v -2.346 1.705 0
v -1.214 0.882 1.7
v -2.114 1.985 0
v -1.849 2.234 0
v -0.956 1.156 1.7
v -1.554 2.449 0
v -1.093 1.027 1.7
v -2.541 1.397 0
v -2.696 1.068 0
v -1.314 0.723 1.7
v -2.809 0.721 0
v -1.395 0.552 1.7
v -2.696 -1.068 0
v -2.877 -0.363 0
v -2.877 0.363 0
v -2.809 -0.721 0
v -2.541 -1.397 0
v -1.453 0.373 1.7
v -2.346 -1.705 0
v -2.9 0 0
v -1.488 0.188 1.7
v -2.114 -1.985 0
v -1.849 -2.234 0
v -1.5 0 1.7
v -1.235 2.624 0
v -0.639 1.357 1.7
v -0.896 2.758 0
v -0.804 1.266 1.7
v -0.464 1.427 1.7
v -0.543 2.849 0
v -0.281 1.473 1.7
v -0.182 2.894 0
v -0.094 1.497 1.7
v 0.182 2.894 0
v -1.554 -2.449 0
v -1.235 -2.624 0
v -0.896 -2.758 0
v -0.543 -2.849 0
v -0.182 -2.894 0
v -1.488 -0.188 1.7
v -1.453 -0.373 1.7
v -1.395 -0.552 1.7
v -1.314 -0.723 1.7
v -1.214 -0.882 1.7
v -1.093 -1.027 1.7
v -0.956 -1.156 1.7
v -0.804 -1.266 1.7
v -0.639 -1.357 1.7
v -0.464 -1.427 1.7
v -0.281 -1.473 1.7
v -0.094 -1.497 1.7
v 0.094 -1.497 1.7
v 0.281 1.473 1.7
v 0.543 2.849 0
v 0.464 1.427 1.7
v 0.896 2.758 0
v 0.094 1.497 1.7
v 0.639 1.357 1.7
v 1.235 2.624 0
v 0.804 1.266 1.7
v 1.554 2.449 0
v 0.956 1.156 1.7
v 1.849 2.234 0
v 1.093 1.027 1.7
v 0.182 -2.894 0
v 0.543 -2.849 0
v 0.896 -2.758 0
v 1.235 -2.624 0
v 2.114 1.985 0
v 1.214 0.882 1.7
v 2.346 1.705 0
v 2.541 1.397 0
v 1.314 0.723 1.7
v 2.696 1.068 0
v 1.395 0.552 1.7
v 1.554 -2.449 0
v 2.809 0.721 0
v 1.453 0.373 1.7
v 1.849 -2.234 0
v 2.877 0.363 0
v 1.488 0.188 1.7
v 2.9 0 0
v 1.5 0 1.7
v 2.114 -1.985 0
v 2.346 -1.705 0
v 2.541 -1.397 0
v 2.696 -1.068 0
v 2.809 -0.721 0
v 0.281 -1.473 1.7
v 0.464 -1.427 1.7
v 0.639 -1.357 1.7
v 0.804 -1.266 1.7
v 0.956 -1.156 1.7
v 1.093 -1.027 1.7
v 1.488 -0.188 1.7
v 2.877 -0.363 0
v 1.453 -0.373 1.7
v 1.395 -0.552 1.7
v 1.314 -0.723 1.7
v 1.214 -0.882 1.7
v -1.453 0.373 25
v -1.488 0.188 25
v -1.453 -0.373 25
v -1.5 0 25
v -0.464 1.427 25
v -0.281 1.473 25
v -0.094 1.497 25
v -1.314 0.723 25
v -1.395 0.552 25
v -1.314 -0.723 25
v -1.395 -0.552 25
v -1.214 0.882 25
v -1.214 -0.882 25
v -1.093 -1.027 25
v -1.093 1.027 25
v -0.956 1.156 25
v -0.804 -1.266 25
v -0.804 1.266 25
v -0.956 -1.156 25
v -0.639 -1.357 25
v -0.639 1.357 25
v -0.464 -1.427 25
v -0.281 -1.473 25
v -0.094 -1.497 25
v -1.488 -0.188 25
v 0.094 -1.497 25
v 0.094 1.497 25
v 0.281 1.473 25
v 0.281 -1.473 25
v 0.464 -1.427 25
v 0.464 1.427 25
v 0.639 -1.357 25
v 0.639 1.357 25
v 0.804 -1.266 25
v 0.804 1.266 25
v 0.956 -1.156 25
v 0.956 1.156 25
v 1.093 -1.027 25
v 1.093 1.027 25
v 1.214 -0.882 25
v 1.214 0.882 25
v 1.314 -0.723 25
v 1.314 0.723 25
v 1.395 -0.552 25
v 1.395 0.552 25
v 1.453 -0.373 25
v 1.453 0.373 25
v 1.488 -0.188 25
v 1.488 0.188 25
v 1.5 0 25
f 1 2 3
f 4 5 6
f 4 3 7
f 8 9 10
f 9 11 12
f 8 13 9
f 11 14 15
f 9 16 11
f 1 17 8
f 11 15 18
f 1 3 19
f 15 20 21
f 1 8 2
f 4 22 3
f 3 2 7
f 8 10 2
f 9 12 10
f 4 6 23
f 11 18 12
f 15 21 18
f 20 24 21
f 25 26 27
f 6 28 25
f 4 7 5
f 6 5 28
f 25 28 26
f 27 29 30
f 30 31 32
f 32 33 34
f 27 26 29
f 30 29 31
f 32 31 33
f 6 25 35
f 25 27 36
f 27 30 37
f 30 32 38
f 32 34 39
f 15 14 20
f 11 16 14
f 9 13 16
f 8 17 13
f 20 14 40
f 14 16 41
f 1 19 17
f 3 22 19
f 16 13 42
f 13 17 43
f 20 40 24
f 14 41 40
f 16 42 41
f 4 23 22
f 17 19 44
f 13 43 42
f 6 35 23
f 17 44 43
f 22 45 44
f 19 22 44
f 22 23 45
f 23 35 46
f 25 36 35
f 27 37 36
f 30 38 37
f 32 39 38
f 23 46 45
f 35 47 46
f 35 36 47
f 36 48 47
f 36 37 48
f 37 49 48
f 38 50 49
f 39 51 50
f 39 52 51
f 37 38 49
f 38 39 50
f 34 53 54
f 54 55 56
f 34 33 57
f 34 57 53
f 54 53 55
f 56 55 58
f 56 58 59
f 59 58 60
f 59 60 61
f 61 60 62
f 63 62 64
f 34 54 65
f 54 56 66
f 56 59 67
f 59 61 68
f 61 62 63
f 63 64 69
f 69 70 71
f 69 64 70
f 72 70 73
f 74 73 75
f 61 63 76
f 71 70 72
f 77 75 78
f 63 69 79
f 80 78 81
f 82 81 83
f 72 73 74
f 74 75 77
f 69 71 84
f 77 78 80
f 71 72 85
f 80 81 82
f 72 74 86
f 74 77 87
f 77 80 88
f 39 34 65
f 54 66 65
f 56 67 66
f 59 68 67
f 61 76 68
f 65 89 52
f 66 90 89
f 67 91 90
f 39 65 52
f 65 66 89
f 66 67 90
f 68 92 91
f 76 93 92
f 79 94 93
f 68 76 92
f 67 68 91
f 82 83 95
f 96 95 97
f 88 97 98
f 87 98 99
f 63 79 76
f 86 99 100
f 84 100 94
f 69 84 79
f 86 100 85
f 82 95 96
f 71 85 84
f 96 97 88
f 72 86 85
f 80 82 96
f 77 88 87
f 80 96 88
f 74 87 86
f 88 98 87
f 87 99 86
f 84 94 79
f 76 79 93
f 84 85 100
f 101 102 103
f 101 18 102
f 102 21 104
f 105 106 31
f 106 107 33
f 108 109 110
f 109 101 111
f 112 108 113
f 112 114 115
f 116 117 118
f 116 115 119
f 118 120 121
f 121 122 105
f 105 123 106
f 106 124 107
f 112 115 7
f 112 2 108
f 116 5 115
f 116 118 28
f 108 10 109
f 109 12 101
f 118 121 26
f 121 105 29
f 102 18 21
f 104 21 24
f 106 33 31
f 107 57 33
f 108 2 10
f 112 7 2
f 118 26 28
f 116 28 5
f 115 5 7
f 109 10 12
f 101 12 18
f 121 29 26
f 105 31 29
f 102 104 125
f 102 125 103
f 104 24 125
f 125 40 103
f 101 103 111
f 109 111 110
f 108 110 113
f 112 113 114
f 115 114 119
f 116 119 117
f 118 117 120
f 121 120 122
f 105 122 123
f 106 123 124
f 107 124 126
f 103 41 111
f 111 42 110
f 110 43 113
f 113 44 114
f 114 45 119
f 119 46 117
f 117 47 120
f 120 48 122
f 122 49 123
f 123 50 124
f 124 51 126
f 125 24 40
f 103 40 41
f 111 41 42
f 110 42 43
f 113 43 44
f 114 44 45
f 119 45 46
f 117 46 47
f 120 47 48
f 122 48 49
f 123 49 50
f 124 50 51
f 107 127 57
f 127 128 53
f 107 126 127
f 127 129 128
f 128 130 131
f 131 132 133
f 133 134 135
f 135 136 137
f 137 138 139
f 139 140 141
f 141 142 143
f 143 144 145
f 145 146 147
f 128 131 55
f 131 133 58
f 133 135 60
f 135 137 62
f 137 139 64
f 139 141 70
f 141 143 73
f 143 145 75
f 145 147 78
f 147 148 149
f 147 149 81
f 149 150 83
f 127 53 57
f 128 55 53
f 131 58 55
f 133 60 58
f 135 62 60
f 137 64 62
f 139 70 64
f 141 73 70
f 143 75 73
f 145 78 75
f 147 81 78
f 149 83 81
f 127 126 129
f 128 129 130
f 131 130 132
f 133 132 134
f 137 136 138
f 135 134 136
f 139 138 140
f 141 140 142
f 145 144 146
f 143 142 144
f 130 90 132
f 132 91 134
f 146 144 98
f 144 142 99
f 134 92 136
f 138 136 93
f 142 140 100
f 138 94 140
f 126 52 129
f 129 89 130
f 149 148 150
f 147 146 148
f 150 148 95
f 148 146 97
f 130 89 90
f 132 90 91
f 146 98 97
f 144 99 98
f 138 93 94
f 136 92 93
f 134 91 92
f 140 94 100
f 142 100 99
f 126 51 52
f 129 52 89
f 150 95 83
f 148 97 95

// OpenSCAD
$fn = 50;

difference() {
	union() {
		translate(v = [0, 0, 0]) {
			rotate(a = [180, 0, 0]) {
				difference() {
					union() {
						translate(v = [0, 0, -1.7]) {
							cylinder(h = 1.7, r1 = 1.5, r2 = 2.9);
						}
						translate(v = [0, 0, -25.0]) {
							cylinder(h = 25.0, r = 1.5);
						}
					}
					union();
				}
			}
		}
	}
	union();
}
